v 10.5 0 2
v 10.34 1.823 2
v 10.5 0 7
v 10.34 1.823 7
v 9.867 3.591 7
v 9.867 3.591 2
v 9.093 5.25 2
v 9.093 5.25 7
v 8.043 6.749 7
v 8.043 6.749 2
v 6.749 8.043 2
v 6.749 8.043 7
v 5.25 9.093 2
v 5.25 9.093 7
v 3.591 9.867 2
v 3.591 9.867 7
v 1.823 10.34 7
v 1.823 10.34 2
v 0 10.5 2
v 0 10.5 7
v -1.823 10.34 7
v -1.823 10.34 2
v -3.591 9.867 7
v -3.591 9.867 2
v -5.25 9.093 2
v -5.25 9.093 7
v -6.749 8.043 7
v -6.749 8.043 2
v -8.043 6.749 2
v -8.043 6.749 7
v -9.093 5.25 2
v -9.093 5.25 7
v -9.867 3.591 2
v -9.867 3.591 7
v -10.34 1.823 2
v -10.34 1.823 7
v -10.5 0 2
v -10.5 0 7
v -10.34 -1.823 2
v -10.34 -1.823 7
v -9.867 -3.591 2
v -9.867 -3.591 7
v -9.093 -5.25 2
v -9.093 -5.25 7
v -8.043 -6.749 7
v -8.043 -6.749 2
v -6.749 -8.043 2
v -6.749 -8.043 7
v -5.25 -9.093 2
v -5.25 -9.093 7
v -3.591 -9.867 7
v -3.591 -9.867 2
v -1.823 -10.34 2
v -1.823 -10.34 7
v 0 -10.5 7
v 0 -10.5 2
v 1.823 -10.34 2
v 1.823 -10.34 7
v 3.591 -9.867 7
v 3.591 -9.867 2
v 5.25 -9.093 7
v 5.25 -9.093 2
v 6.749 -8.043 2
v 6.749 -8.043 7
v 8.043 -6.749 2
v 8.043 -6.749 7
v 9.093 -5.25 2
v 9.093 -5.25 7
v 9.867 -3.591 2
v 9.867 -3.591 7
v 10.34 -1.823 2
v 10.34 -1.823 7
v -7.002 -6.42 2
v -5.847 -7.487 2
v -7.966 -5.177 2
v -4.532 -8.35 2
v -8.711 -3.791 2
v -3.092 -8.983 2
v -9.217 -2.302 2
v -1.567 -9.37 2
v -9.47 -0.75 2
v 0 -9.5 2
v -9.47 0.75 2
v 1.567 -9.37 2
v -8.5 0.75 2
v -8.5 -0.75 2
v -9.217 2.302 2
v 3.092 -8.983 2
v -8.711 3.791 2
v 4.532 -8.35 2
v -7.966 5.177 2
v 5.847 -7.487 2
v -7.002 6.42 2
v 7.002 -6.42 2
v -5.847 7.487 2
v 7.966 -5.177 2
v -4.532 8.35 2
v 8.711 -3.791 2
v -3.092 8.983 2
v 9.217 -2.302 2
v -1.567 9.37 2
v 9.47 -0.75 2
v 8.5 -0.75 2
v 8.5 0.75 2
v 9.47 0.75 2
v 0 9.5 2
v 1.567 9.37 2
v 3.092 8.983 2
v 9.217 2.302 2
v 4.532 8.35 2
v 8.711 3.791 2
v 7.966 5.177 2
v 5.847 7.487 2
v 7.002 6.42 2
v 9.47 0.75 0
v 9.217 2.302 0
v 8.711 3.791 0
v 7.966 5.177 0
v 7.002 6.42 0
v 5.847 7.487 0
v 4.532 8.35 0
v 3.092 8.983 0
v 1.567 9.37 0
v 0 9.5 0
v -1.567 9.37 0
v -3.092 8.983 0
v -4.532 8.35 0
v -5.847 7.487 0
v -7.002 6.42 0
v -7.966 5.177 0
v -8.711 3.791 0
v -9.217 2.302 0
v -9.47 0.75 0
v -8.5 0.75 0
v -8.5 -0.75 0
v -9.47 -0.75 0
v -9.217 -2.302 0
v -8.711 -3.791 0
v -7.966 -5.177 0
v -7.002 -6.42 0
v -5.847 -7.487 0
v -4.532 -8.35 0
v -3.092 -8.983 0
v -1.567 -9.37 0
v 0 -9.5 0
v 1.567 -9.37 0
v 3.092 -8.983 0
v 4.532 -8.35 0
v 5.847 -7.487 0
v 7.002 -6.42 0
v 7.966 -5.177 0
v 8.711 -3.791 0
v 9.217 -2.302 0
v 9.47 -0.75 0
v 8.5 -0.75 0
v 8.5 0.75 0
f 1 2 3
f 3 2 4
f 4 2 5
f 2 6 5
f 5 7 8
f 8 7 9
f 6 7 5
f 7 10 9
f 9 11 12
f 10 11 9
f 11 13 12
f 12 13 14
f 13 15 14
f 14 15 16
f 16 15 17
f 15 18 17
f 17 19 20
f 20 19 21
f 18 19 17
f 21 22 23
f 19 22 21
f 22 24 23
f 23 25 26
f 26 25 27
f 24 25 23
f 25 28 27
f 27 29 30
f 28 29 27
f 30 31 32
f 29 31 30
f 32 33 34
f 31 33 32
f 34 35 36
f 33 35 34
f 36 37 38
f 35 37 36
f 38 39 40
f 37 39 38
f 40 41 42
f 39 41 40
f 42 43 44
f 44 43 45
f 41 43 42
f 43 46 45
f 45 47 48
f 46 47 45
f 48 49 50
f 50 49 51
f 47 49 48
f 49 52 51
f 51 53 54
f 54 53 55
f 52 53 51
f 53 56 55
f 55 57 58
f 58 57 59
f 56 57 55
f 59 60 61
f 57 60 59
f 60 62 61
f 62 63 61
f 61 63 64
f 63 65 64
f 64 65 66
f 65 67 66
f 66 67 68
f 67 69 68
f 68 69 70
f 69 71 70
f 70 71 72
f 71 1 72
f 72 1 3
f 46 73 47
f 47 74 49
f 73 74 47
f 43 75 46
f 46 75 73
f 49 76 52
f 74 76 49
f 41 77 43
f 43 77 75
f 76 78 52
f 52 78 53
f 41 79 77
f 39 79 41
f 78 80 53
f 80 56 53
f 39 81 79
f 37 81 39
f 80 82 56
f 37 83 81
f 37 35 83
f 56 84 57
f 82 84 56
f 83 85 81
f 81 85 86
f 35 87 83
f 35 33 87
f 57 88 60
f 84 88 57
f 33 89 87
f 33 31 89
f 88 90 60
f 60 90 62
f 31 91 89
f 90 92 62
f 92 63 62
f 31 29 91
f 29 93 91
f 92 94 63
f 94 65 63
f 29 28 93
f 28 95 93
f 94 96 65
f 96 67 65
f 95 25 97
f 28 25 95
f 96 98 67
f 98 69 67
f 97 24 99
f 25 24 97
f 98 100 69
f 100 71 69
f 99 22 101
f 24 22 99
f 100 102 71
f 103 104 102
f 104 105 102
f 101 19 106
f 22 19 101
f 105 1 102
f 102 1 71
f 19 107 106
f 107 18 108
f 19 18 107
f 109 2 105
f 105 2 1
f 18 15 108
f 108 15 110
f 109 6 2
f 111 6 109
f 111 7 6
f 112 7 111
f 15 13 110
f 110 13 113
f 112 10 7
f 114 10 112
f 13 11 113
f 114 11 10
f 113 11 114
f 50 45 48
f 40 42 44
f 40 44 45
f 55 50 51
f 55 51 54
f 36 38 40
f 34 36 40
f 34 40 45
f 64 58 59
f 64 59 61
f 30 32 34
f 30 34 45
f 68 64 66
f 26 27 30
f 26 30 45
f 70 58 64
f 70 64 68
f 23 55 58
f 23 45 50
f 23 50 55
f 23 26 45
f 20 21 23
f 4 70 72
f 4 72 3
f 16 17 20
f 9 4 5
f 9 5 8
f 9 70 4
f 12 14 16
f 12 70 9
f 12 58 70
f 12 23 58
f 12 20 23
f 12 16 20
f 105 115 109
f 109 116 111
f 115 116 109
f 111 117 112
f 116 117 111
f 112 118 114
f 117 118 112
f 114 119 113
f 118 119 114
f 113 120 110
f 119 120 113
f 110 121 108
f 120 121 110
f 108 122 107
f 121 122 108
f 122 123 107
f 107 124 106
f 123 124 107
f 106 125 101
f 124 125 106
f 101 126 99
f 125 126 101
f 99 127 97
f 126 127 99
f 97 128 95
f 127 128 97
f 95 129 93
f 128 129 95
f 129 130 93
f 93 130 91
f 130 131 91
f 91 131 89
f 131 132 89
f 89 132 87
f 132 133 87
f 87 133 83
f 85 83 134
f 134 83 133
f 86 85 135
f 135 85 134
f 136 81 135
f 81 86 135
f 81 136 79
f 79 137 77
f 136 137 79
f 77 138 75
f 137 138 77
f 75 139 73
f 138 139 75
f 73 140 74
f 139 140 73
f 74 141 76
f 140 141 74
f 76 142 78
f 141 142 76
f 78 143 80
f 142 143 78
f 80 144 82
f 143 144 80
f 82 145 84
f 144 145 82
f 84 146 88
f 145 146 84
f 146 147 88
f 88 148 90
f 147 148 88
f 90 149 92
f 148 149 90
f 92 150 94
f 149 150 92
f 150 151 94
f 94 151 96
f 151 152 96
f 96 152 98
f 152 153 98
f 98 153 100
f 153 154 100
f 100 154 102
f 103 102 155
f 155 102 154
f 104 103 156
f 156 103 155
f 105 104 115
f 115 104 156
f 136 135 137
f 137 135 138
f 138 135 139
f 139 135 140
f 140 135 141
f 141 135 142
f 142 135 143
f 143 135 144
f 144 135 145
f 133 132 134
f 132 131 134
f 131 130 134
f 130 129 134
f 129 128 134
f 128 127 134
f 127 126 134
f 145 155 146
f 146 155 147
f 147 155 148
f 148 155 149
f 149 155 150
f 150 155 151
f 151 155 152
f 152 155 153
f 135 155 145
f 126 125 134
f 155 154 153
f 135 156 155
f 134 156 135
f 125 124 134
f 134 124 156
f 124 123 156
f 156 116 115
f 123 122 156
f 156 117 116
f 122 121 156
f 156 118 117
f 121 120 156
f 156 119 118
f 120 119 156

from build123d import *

# Parameters (mm, degrees)
SKETCH_R     = 9.5
PAD_DEPTH    = 2
SKETCH001_W  = 2
SKETCH001_H  = 1.5
POCKET_DEPTH = 5
SKETCH002_R  = 10.5
PAD001_DEPTH = 5


with BuildPart() as part:
    # Sketch → Pad (new body)
    with BuildSketch(Plane.XY):
        Circle(SKETCH_R)
    extrude(amount=PAD_DEPTH)

    # Sketch001 (on Face3 of Pad) → Pocket (cut)
    with BuildSketch(Plane.XY.offset(2)):
        with Locations((9.5, 0)):
            Rectangle(SKETCH001_W, SKETCH001_H)
        with Locations((-9.5, 0)):
            Rectangle(SKETCH001_W, SKETCH001_H)
    extrude(amount=-POCKET_DEPTH, mode=Mode.SUBTRACT)

    # Sketch002 (on Face4 of Pocket) → Pad001 (join)
    with BuildSketch(Plane.XY.offset(2)):
        Circle(SKETCH002_R)
    extrude(amount=PAD001_DEPTH)


solid = part.part
